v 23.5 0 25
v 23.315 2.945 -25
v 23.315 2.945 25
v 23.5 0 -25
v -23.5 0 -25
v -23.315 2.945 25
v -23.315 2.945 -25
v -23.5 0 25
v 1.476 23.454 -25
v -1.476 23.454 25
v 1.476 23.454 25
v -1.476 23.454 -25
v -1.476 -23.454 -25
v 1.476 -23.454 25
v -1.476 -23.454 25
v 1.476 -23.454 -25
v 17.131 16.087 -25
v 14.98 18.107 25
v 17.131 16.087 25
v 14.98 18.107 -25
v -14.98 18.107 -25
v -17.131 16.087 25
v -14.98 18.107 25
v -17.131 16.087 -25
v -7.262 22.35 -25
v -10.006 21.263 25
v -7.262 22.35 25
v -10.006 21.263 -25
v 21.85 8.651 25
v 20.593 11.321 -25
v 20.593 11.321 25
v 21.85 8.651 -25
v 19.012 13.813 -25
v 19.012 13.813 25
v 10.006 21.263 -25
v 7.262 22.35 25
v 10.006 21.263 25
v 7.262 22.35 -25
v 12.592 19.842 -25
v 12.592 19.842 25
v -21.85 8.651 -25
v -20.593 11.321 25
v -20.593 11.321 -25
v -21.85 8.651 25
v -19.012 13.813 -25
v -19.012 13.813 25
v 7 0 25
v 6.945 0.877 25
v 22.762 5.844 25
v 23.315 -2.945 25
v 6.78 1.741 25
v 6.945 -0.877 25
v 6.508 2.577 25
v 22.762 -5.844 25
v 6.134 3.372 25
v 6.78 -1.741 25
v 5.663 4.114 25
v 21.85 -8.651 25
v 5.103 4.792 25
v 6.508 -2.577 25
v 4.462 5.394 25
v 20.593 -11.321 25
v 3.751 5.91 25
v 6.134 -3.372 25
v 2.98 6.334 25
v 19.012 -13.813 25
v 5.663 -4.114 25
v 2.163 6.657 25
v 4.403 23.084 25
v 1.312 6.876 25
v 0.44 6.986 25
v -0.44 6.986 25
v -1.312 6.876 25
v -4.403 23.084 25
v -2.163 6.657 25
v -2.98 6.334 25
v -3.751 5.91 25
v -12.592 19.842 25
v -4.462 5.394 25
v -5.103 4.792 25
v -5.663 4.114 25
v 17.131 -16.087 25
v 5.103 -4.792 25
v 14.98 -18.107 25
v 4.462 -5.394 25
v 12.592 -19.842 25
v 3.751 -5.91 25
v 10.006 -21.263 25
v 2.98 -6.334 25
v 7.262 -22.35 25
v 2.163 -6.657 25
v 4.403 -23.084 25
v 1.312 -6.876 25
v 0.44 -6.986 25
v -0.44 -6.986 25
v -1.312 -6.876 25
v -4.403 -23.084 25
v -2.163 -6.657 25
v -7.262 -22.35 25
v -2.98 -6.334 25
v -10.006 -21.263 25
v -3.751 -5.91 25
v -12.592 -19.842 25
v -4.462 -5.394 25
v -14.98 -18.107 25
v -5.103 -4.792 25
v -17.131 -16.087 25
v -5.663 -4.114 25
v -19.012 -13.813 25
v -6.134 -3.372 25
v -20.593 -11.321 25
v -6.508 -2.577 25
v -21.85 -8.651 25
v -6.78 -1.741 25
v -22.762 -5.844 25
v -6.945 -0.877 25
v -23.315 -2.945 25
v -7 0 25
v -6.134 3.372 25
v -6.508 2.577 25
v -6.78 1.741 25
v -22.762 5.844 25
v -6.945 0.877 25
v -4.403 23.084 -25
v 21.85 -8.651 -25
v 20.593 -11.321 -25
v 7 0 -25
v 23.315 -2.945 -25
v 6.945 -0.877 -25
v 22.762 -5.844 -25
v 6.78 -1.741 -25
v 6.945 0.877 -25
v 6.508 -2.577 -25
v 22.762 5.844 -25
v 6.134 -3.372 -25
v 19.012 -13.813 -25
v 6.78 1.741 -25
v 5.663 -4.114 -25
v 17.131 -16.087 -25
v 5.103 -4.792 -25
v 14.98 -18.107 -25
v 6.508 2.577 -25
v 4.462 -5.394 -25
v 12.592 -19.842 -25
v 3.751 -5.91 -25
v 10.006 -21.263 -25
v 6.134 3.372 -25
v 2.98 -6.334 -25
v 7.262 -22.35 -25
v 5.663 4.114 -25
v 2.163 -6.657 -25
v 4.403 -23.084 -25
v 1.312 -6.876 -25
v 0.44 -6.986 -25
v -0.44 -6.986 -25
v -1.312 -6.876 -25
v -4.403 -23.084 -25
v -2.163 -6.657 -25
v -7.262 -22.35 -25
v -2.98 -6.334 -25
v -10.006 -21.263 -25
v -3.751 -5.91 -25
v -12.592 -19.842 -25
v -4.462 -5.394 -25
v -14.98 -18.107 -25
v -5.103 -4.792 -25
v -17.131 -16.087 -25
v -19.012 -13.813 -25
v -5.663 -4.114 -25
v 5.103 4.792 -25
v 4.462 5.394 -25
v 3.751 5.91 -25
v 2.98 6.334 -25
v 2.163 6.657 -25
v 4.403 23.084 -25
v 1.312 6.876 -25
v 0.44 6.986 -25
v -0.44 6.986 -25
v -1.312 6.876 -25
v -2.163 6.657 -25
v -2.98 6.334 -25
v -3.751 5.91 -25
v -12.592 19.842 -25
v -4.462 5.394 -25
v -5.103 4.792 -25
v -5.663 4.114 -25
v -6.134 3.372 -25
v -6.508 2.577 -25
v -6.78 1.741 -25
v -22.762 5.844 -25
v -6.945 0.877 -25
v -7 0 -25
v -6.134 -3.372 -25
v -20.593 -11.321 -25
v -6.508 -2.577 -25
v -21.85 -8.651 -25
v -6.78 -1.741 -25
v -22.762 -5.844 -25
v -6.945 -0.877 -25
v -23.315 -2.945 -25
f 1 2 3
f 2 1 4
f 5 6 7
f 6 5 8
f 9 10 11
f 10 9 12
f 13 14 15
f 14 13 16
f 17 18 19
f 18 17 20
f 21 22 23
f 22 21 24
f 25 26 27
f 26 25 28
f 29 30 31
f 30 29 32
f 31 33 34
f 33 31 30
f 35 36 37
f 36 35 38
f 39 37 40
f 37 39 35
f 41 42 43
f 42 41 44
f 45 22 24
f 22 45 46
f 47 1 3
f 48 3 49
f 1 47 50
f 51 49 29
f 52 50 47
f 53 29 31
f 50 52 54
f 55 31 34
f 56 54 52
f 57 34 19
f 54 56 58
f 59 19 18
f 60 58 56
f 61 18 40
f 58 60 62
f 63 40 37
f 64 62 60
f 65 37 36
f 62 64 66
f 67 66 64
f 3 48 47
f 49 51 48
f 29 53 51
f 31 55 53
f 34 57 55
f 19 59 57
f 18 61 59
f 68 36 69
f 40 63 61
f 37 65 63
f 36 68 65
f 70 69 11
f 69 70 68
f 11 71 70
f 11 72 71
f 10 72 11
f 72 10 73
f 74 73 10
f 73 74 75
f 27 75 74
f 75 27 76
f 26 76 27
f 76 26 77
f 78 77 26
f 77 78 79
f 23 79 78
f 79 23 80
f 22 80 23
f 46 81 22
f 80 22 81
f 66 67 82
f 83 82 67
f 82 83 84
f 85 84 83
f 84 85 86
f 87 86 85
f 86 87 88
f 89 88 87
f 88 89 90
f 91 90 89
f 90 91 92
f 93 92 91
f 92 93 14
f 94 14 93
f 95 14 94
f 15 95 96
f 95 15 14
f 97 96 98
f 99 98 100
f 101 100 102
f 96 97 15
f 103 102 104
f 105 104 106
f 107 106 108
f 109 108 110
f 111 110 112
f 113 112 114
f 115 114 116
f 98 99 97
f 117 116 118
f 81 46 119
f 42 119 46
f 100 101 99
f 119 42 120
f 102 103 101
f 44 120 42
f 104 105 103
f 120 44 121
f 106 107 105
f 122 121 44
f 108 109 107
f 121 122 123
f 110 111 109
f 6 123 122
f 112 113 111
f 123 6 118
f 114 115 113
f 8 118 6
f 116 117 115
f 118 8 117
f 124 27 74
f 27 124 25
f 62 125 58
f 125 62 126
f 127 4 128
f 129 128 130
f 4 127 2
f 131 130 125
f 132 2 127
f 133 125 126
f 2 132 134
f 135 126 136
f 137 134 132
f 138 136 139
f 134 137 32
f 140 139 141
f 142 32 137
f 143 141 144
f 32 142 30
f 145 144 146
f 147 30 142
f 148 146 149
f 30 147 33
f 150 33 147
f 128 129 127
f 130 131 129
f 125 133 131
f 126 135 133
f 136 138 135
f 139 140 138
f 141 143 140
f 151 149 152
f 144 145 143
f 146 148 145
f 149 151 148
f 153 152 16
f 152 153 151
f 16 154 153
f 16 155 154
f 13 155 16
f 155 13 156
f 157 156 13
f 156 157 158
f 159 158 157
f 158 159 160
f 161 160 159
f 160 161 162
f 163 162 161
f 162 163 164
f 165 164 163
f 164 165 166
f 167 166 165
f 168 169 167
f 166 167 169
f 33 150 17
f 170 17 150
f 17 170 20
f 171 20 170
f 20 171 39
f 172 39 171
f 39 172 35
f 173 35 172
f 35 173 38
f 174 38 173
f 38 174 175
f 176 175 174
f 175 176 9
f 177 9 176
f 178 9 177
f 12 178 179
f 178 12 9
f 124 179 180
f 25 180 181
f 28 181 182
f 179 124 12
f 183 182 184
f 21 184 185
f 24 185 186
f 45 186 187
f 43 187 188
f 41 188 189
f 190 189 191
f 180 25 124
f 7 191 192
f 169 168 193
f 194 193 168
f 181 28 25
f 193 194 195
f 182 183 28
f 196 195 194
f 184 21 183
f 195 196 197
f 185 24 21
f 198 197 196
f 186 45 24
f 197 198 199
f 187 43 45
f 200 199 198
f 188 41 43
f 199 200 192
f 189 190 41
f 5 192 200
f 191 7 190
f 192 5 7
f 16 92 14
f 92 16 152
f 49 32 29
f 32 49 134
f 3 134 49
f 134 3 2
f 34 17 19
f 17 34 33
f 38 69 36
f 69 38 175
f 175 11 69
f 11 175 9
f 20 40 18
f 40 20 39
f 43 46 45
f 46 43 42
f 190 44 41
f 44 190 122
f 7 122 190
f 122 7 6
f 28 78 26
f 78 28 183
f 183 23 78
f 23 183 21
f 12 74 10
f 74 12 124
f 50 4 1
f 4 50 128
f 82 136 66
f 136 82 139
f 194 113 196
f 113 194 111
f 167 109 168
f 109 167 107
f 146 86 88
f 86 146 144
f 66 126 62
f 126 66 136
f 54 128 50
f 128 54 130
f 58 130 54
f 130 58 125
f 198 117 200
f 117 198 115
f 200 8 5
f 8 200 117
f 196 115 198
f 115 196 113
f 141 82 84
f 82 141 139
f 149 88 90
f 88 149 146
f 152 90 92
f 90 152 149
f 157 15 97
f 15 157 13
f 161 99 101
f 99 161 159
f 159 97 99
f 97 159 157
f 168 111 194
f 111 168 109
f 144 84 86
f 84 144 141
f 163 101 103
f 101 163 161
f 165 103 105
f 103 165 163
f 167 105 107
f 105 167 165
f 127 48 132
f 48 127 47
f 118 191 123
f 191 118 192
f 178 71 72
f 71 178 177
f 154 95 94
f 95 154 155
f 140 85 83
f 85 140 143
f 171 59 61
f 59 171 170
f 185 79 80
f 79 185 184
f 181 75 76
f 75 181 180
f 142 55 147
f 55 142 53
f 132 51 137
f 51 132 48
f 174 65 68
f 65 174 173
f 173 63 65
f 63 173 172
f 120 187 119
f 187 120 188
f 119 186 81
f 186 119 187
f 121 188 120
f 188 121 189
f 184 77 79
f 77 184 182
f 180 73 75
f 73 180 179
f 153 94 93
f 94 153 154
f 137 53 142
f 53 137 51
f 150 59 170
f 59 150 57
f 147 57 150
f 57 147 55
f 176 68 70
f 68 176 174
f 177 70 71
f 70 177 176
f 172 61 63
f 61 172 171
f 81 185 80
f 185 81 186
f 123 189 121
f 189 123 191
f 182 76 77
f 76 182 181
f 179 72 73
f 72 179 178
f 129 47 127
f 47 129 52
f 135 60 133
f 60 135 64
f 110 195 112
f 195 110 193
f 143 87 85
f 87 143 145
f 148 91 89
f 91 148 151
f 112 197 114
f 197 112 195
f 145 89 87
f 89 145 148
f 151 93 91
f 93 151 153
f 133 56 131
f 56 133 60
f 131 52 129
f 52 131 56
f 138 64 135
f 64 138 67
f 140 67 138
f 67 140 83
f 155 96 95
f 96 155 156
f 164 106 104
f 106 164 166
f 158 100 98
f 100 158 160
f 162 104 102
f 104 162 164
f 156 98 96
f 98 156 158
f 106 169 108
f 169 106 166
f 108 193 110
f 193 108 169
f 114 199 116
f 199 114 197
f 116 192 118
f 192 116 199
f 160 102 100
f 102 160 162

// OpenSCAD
$fn = 50;


difference() {
	union() {
		translate(v = [0, 0, -25.0000000000]) {
			cylinder(h = 50, r = 23.5000000000);
		}
	}
	union() {
		translate(v = [0, 0, -100.0000000000]) {
			cylinder(h = 200, r = 7);
		}
	}
}
